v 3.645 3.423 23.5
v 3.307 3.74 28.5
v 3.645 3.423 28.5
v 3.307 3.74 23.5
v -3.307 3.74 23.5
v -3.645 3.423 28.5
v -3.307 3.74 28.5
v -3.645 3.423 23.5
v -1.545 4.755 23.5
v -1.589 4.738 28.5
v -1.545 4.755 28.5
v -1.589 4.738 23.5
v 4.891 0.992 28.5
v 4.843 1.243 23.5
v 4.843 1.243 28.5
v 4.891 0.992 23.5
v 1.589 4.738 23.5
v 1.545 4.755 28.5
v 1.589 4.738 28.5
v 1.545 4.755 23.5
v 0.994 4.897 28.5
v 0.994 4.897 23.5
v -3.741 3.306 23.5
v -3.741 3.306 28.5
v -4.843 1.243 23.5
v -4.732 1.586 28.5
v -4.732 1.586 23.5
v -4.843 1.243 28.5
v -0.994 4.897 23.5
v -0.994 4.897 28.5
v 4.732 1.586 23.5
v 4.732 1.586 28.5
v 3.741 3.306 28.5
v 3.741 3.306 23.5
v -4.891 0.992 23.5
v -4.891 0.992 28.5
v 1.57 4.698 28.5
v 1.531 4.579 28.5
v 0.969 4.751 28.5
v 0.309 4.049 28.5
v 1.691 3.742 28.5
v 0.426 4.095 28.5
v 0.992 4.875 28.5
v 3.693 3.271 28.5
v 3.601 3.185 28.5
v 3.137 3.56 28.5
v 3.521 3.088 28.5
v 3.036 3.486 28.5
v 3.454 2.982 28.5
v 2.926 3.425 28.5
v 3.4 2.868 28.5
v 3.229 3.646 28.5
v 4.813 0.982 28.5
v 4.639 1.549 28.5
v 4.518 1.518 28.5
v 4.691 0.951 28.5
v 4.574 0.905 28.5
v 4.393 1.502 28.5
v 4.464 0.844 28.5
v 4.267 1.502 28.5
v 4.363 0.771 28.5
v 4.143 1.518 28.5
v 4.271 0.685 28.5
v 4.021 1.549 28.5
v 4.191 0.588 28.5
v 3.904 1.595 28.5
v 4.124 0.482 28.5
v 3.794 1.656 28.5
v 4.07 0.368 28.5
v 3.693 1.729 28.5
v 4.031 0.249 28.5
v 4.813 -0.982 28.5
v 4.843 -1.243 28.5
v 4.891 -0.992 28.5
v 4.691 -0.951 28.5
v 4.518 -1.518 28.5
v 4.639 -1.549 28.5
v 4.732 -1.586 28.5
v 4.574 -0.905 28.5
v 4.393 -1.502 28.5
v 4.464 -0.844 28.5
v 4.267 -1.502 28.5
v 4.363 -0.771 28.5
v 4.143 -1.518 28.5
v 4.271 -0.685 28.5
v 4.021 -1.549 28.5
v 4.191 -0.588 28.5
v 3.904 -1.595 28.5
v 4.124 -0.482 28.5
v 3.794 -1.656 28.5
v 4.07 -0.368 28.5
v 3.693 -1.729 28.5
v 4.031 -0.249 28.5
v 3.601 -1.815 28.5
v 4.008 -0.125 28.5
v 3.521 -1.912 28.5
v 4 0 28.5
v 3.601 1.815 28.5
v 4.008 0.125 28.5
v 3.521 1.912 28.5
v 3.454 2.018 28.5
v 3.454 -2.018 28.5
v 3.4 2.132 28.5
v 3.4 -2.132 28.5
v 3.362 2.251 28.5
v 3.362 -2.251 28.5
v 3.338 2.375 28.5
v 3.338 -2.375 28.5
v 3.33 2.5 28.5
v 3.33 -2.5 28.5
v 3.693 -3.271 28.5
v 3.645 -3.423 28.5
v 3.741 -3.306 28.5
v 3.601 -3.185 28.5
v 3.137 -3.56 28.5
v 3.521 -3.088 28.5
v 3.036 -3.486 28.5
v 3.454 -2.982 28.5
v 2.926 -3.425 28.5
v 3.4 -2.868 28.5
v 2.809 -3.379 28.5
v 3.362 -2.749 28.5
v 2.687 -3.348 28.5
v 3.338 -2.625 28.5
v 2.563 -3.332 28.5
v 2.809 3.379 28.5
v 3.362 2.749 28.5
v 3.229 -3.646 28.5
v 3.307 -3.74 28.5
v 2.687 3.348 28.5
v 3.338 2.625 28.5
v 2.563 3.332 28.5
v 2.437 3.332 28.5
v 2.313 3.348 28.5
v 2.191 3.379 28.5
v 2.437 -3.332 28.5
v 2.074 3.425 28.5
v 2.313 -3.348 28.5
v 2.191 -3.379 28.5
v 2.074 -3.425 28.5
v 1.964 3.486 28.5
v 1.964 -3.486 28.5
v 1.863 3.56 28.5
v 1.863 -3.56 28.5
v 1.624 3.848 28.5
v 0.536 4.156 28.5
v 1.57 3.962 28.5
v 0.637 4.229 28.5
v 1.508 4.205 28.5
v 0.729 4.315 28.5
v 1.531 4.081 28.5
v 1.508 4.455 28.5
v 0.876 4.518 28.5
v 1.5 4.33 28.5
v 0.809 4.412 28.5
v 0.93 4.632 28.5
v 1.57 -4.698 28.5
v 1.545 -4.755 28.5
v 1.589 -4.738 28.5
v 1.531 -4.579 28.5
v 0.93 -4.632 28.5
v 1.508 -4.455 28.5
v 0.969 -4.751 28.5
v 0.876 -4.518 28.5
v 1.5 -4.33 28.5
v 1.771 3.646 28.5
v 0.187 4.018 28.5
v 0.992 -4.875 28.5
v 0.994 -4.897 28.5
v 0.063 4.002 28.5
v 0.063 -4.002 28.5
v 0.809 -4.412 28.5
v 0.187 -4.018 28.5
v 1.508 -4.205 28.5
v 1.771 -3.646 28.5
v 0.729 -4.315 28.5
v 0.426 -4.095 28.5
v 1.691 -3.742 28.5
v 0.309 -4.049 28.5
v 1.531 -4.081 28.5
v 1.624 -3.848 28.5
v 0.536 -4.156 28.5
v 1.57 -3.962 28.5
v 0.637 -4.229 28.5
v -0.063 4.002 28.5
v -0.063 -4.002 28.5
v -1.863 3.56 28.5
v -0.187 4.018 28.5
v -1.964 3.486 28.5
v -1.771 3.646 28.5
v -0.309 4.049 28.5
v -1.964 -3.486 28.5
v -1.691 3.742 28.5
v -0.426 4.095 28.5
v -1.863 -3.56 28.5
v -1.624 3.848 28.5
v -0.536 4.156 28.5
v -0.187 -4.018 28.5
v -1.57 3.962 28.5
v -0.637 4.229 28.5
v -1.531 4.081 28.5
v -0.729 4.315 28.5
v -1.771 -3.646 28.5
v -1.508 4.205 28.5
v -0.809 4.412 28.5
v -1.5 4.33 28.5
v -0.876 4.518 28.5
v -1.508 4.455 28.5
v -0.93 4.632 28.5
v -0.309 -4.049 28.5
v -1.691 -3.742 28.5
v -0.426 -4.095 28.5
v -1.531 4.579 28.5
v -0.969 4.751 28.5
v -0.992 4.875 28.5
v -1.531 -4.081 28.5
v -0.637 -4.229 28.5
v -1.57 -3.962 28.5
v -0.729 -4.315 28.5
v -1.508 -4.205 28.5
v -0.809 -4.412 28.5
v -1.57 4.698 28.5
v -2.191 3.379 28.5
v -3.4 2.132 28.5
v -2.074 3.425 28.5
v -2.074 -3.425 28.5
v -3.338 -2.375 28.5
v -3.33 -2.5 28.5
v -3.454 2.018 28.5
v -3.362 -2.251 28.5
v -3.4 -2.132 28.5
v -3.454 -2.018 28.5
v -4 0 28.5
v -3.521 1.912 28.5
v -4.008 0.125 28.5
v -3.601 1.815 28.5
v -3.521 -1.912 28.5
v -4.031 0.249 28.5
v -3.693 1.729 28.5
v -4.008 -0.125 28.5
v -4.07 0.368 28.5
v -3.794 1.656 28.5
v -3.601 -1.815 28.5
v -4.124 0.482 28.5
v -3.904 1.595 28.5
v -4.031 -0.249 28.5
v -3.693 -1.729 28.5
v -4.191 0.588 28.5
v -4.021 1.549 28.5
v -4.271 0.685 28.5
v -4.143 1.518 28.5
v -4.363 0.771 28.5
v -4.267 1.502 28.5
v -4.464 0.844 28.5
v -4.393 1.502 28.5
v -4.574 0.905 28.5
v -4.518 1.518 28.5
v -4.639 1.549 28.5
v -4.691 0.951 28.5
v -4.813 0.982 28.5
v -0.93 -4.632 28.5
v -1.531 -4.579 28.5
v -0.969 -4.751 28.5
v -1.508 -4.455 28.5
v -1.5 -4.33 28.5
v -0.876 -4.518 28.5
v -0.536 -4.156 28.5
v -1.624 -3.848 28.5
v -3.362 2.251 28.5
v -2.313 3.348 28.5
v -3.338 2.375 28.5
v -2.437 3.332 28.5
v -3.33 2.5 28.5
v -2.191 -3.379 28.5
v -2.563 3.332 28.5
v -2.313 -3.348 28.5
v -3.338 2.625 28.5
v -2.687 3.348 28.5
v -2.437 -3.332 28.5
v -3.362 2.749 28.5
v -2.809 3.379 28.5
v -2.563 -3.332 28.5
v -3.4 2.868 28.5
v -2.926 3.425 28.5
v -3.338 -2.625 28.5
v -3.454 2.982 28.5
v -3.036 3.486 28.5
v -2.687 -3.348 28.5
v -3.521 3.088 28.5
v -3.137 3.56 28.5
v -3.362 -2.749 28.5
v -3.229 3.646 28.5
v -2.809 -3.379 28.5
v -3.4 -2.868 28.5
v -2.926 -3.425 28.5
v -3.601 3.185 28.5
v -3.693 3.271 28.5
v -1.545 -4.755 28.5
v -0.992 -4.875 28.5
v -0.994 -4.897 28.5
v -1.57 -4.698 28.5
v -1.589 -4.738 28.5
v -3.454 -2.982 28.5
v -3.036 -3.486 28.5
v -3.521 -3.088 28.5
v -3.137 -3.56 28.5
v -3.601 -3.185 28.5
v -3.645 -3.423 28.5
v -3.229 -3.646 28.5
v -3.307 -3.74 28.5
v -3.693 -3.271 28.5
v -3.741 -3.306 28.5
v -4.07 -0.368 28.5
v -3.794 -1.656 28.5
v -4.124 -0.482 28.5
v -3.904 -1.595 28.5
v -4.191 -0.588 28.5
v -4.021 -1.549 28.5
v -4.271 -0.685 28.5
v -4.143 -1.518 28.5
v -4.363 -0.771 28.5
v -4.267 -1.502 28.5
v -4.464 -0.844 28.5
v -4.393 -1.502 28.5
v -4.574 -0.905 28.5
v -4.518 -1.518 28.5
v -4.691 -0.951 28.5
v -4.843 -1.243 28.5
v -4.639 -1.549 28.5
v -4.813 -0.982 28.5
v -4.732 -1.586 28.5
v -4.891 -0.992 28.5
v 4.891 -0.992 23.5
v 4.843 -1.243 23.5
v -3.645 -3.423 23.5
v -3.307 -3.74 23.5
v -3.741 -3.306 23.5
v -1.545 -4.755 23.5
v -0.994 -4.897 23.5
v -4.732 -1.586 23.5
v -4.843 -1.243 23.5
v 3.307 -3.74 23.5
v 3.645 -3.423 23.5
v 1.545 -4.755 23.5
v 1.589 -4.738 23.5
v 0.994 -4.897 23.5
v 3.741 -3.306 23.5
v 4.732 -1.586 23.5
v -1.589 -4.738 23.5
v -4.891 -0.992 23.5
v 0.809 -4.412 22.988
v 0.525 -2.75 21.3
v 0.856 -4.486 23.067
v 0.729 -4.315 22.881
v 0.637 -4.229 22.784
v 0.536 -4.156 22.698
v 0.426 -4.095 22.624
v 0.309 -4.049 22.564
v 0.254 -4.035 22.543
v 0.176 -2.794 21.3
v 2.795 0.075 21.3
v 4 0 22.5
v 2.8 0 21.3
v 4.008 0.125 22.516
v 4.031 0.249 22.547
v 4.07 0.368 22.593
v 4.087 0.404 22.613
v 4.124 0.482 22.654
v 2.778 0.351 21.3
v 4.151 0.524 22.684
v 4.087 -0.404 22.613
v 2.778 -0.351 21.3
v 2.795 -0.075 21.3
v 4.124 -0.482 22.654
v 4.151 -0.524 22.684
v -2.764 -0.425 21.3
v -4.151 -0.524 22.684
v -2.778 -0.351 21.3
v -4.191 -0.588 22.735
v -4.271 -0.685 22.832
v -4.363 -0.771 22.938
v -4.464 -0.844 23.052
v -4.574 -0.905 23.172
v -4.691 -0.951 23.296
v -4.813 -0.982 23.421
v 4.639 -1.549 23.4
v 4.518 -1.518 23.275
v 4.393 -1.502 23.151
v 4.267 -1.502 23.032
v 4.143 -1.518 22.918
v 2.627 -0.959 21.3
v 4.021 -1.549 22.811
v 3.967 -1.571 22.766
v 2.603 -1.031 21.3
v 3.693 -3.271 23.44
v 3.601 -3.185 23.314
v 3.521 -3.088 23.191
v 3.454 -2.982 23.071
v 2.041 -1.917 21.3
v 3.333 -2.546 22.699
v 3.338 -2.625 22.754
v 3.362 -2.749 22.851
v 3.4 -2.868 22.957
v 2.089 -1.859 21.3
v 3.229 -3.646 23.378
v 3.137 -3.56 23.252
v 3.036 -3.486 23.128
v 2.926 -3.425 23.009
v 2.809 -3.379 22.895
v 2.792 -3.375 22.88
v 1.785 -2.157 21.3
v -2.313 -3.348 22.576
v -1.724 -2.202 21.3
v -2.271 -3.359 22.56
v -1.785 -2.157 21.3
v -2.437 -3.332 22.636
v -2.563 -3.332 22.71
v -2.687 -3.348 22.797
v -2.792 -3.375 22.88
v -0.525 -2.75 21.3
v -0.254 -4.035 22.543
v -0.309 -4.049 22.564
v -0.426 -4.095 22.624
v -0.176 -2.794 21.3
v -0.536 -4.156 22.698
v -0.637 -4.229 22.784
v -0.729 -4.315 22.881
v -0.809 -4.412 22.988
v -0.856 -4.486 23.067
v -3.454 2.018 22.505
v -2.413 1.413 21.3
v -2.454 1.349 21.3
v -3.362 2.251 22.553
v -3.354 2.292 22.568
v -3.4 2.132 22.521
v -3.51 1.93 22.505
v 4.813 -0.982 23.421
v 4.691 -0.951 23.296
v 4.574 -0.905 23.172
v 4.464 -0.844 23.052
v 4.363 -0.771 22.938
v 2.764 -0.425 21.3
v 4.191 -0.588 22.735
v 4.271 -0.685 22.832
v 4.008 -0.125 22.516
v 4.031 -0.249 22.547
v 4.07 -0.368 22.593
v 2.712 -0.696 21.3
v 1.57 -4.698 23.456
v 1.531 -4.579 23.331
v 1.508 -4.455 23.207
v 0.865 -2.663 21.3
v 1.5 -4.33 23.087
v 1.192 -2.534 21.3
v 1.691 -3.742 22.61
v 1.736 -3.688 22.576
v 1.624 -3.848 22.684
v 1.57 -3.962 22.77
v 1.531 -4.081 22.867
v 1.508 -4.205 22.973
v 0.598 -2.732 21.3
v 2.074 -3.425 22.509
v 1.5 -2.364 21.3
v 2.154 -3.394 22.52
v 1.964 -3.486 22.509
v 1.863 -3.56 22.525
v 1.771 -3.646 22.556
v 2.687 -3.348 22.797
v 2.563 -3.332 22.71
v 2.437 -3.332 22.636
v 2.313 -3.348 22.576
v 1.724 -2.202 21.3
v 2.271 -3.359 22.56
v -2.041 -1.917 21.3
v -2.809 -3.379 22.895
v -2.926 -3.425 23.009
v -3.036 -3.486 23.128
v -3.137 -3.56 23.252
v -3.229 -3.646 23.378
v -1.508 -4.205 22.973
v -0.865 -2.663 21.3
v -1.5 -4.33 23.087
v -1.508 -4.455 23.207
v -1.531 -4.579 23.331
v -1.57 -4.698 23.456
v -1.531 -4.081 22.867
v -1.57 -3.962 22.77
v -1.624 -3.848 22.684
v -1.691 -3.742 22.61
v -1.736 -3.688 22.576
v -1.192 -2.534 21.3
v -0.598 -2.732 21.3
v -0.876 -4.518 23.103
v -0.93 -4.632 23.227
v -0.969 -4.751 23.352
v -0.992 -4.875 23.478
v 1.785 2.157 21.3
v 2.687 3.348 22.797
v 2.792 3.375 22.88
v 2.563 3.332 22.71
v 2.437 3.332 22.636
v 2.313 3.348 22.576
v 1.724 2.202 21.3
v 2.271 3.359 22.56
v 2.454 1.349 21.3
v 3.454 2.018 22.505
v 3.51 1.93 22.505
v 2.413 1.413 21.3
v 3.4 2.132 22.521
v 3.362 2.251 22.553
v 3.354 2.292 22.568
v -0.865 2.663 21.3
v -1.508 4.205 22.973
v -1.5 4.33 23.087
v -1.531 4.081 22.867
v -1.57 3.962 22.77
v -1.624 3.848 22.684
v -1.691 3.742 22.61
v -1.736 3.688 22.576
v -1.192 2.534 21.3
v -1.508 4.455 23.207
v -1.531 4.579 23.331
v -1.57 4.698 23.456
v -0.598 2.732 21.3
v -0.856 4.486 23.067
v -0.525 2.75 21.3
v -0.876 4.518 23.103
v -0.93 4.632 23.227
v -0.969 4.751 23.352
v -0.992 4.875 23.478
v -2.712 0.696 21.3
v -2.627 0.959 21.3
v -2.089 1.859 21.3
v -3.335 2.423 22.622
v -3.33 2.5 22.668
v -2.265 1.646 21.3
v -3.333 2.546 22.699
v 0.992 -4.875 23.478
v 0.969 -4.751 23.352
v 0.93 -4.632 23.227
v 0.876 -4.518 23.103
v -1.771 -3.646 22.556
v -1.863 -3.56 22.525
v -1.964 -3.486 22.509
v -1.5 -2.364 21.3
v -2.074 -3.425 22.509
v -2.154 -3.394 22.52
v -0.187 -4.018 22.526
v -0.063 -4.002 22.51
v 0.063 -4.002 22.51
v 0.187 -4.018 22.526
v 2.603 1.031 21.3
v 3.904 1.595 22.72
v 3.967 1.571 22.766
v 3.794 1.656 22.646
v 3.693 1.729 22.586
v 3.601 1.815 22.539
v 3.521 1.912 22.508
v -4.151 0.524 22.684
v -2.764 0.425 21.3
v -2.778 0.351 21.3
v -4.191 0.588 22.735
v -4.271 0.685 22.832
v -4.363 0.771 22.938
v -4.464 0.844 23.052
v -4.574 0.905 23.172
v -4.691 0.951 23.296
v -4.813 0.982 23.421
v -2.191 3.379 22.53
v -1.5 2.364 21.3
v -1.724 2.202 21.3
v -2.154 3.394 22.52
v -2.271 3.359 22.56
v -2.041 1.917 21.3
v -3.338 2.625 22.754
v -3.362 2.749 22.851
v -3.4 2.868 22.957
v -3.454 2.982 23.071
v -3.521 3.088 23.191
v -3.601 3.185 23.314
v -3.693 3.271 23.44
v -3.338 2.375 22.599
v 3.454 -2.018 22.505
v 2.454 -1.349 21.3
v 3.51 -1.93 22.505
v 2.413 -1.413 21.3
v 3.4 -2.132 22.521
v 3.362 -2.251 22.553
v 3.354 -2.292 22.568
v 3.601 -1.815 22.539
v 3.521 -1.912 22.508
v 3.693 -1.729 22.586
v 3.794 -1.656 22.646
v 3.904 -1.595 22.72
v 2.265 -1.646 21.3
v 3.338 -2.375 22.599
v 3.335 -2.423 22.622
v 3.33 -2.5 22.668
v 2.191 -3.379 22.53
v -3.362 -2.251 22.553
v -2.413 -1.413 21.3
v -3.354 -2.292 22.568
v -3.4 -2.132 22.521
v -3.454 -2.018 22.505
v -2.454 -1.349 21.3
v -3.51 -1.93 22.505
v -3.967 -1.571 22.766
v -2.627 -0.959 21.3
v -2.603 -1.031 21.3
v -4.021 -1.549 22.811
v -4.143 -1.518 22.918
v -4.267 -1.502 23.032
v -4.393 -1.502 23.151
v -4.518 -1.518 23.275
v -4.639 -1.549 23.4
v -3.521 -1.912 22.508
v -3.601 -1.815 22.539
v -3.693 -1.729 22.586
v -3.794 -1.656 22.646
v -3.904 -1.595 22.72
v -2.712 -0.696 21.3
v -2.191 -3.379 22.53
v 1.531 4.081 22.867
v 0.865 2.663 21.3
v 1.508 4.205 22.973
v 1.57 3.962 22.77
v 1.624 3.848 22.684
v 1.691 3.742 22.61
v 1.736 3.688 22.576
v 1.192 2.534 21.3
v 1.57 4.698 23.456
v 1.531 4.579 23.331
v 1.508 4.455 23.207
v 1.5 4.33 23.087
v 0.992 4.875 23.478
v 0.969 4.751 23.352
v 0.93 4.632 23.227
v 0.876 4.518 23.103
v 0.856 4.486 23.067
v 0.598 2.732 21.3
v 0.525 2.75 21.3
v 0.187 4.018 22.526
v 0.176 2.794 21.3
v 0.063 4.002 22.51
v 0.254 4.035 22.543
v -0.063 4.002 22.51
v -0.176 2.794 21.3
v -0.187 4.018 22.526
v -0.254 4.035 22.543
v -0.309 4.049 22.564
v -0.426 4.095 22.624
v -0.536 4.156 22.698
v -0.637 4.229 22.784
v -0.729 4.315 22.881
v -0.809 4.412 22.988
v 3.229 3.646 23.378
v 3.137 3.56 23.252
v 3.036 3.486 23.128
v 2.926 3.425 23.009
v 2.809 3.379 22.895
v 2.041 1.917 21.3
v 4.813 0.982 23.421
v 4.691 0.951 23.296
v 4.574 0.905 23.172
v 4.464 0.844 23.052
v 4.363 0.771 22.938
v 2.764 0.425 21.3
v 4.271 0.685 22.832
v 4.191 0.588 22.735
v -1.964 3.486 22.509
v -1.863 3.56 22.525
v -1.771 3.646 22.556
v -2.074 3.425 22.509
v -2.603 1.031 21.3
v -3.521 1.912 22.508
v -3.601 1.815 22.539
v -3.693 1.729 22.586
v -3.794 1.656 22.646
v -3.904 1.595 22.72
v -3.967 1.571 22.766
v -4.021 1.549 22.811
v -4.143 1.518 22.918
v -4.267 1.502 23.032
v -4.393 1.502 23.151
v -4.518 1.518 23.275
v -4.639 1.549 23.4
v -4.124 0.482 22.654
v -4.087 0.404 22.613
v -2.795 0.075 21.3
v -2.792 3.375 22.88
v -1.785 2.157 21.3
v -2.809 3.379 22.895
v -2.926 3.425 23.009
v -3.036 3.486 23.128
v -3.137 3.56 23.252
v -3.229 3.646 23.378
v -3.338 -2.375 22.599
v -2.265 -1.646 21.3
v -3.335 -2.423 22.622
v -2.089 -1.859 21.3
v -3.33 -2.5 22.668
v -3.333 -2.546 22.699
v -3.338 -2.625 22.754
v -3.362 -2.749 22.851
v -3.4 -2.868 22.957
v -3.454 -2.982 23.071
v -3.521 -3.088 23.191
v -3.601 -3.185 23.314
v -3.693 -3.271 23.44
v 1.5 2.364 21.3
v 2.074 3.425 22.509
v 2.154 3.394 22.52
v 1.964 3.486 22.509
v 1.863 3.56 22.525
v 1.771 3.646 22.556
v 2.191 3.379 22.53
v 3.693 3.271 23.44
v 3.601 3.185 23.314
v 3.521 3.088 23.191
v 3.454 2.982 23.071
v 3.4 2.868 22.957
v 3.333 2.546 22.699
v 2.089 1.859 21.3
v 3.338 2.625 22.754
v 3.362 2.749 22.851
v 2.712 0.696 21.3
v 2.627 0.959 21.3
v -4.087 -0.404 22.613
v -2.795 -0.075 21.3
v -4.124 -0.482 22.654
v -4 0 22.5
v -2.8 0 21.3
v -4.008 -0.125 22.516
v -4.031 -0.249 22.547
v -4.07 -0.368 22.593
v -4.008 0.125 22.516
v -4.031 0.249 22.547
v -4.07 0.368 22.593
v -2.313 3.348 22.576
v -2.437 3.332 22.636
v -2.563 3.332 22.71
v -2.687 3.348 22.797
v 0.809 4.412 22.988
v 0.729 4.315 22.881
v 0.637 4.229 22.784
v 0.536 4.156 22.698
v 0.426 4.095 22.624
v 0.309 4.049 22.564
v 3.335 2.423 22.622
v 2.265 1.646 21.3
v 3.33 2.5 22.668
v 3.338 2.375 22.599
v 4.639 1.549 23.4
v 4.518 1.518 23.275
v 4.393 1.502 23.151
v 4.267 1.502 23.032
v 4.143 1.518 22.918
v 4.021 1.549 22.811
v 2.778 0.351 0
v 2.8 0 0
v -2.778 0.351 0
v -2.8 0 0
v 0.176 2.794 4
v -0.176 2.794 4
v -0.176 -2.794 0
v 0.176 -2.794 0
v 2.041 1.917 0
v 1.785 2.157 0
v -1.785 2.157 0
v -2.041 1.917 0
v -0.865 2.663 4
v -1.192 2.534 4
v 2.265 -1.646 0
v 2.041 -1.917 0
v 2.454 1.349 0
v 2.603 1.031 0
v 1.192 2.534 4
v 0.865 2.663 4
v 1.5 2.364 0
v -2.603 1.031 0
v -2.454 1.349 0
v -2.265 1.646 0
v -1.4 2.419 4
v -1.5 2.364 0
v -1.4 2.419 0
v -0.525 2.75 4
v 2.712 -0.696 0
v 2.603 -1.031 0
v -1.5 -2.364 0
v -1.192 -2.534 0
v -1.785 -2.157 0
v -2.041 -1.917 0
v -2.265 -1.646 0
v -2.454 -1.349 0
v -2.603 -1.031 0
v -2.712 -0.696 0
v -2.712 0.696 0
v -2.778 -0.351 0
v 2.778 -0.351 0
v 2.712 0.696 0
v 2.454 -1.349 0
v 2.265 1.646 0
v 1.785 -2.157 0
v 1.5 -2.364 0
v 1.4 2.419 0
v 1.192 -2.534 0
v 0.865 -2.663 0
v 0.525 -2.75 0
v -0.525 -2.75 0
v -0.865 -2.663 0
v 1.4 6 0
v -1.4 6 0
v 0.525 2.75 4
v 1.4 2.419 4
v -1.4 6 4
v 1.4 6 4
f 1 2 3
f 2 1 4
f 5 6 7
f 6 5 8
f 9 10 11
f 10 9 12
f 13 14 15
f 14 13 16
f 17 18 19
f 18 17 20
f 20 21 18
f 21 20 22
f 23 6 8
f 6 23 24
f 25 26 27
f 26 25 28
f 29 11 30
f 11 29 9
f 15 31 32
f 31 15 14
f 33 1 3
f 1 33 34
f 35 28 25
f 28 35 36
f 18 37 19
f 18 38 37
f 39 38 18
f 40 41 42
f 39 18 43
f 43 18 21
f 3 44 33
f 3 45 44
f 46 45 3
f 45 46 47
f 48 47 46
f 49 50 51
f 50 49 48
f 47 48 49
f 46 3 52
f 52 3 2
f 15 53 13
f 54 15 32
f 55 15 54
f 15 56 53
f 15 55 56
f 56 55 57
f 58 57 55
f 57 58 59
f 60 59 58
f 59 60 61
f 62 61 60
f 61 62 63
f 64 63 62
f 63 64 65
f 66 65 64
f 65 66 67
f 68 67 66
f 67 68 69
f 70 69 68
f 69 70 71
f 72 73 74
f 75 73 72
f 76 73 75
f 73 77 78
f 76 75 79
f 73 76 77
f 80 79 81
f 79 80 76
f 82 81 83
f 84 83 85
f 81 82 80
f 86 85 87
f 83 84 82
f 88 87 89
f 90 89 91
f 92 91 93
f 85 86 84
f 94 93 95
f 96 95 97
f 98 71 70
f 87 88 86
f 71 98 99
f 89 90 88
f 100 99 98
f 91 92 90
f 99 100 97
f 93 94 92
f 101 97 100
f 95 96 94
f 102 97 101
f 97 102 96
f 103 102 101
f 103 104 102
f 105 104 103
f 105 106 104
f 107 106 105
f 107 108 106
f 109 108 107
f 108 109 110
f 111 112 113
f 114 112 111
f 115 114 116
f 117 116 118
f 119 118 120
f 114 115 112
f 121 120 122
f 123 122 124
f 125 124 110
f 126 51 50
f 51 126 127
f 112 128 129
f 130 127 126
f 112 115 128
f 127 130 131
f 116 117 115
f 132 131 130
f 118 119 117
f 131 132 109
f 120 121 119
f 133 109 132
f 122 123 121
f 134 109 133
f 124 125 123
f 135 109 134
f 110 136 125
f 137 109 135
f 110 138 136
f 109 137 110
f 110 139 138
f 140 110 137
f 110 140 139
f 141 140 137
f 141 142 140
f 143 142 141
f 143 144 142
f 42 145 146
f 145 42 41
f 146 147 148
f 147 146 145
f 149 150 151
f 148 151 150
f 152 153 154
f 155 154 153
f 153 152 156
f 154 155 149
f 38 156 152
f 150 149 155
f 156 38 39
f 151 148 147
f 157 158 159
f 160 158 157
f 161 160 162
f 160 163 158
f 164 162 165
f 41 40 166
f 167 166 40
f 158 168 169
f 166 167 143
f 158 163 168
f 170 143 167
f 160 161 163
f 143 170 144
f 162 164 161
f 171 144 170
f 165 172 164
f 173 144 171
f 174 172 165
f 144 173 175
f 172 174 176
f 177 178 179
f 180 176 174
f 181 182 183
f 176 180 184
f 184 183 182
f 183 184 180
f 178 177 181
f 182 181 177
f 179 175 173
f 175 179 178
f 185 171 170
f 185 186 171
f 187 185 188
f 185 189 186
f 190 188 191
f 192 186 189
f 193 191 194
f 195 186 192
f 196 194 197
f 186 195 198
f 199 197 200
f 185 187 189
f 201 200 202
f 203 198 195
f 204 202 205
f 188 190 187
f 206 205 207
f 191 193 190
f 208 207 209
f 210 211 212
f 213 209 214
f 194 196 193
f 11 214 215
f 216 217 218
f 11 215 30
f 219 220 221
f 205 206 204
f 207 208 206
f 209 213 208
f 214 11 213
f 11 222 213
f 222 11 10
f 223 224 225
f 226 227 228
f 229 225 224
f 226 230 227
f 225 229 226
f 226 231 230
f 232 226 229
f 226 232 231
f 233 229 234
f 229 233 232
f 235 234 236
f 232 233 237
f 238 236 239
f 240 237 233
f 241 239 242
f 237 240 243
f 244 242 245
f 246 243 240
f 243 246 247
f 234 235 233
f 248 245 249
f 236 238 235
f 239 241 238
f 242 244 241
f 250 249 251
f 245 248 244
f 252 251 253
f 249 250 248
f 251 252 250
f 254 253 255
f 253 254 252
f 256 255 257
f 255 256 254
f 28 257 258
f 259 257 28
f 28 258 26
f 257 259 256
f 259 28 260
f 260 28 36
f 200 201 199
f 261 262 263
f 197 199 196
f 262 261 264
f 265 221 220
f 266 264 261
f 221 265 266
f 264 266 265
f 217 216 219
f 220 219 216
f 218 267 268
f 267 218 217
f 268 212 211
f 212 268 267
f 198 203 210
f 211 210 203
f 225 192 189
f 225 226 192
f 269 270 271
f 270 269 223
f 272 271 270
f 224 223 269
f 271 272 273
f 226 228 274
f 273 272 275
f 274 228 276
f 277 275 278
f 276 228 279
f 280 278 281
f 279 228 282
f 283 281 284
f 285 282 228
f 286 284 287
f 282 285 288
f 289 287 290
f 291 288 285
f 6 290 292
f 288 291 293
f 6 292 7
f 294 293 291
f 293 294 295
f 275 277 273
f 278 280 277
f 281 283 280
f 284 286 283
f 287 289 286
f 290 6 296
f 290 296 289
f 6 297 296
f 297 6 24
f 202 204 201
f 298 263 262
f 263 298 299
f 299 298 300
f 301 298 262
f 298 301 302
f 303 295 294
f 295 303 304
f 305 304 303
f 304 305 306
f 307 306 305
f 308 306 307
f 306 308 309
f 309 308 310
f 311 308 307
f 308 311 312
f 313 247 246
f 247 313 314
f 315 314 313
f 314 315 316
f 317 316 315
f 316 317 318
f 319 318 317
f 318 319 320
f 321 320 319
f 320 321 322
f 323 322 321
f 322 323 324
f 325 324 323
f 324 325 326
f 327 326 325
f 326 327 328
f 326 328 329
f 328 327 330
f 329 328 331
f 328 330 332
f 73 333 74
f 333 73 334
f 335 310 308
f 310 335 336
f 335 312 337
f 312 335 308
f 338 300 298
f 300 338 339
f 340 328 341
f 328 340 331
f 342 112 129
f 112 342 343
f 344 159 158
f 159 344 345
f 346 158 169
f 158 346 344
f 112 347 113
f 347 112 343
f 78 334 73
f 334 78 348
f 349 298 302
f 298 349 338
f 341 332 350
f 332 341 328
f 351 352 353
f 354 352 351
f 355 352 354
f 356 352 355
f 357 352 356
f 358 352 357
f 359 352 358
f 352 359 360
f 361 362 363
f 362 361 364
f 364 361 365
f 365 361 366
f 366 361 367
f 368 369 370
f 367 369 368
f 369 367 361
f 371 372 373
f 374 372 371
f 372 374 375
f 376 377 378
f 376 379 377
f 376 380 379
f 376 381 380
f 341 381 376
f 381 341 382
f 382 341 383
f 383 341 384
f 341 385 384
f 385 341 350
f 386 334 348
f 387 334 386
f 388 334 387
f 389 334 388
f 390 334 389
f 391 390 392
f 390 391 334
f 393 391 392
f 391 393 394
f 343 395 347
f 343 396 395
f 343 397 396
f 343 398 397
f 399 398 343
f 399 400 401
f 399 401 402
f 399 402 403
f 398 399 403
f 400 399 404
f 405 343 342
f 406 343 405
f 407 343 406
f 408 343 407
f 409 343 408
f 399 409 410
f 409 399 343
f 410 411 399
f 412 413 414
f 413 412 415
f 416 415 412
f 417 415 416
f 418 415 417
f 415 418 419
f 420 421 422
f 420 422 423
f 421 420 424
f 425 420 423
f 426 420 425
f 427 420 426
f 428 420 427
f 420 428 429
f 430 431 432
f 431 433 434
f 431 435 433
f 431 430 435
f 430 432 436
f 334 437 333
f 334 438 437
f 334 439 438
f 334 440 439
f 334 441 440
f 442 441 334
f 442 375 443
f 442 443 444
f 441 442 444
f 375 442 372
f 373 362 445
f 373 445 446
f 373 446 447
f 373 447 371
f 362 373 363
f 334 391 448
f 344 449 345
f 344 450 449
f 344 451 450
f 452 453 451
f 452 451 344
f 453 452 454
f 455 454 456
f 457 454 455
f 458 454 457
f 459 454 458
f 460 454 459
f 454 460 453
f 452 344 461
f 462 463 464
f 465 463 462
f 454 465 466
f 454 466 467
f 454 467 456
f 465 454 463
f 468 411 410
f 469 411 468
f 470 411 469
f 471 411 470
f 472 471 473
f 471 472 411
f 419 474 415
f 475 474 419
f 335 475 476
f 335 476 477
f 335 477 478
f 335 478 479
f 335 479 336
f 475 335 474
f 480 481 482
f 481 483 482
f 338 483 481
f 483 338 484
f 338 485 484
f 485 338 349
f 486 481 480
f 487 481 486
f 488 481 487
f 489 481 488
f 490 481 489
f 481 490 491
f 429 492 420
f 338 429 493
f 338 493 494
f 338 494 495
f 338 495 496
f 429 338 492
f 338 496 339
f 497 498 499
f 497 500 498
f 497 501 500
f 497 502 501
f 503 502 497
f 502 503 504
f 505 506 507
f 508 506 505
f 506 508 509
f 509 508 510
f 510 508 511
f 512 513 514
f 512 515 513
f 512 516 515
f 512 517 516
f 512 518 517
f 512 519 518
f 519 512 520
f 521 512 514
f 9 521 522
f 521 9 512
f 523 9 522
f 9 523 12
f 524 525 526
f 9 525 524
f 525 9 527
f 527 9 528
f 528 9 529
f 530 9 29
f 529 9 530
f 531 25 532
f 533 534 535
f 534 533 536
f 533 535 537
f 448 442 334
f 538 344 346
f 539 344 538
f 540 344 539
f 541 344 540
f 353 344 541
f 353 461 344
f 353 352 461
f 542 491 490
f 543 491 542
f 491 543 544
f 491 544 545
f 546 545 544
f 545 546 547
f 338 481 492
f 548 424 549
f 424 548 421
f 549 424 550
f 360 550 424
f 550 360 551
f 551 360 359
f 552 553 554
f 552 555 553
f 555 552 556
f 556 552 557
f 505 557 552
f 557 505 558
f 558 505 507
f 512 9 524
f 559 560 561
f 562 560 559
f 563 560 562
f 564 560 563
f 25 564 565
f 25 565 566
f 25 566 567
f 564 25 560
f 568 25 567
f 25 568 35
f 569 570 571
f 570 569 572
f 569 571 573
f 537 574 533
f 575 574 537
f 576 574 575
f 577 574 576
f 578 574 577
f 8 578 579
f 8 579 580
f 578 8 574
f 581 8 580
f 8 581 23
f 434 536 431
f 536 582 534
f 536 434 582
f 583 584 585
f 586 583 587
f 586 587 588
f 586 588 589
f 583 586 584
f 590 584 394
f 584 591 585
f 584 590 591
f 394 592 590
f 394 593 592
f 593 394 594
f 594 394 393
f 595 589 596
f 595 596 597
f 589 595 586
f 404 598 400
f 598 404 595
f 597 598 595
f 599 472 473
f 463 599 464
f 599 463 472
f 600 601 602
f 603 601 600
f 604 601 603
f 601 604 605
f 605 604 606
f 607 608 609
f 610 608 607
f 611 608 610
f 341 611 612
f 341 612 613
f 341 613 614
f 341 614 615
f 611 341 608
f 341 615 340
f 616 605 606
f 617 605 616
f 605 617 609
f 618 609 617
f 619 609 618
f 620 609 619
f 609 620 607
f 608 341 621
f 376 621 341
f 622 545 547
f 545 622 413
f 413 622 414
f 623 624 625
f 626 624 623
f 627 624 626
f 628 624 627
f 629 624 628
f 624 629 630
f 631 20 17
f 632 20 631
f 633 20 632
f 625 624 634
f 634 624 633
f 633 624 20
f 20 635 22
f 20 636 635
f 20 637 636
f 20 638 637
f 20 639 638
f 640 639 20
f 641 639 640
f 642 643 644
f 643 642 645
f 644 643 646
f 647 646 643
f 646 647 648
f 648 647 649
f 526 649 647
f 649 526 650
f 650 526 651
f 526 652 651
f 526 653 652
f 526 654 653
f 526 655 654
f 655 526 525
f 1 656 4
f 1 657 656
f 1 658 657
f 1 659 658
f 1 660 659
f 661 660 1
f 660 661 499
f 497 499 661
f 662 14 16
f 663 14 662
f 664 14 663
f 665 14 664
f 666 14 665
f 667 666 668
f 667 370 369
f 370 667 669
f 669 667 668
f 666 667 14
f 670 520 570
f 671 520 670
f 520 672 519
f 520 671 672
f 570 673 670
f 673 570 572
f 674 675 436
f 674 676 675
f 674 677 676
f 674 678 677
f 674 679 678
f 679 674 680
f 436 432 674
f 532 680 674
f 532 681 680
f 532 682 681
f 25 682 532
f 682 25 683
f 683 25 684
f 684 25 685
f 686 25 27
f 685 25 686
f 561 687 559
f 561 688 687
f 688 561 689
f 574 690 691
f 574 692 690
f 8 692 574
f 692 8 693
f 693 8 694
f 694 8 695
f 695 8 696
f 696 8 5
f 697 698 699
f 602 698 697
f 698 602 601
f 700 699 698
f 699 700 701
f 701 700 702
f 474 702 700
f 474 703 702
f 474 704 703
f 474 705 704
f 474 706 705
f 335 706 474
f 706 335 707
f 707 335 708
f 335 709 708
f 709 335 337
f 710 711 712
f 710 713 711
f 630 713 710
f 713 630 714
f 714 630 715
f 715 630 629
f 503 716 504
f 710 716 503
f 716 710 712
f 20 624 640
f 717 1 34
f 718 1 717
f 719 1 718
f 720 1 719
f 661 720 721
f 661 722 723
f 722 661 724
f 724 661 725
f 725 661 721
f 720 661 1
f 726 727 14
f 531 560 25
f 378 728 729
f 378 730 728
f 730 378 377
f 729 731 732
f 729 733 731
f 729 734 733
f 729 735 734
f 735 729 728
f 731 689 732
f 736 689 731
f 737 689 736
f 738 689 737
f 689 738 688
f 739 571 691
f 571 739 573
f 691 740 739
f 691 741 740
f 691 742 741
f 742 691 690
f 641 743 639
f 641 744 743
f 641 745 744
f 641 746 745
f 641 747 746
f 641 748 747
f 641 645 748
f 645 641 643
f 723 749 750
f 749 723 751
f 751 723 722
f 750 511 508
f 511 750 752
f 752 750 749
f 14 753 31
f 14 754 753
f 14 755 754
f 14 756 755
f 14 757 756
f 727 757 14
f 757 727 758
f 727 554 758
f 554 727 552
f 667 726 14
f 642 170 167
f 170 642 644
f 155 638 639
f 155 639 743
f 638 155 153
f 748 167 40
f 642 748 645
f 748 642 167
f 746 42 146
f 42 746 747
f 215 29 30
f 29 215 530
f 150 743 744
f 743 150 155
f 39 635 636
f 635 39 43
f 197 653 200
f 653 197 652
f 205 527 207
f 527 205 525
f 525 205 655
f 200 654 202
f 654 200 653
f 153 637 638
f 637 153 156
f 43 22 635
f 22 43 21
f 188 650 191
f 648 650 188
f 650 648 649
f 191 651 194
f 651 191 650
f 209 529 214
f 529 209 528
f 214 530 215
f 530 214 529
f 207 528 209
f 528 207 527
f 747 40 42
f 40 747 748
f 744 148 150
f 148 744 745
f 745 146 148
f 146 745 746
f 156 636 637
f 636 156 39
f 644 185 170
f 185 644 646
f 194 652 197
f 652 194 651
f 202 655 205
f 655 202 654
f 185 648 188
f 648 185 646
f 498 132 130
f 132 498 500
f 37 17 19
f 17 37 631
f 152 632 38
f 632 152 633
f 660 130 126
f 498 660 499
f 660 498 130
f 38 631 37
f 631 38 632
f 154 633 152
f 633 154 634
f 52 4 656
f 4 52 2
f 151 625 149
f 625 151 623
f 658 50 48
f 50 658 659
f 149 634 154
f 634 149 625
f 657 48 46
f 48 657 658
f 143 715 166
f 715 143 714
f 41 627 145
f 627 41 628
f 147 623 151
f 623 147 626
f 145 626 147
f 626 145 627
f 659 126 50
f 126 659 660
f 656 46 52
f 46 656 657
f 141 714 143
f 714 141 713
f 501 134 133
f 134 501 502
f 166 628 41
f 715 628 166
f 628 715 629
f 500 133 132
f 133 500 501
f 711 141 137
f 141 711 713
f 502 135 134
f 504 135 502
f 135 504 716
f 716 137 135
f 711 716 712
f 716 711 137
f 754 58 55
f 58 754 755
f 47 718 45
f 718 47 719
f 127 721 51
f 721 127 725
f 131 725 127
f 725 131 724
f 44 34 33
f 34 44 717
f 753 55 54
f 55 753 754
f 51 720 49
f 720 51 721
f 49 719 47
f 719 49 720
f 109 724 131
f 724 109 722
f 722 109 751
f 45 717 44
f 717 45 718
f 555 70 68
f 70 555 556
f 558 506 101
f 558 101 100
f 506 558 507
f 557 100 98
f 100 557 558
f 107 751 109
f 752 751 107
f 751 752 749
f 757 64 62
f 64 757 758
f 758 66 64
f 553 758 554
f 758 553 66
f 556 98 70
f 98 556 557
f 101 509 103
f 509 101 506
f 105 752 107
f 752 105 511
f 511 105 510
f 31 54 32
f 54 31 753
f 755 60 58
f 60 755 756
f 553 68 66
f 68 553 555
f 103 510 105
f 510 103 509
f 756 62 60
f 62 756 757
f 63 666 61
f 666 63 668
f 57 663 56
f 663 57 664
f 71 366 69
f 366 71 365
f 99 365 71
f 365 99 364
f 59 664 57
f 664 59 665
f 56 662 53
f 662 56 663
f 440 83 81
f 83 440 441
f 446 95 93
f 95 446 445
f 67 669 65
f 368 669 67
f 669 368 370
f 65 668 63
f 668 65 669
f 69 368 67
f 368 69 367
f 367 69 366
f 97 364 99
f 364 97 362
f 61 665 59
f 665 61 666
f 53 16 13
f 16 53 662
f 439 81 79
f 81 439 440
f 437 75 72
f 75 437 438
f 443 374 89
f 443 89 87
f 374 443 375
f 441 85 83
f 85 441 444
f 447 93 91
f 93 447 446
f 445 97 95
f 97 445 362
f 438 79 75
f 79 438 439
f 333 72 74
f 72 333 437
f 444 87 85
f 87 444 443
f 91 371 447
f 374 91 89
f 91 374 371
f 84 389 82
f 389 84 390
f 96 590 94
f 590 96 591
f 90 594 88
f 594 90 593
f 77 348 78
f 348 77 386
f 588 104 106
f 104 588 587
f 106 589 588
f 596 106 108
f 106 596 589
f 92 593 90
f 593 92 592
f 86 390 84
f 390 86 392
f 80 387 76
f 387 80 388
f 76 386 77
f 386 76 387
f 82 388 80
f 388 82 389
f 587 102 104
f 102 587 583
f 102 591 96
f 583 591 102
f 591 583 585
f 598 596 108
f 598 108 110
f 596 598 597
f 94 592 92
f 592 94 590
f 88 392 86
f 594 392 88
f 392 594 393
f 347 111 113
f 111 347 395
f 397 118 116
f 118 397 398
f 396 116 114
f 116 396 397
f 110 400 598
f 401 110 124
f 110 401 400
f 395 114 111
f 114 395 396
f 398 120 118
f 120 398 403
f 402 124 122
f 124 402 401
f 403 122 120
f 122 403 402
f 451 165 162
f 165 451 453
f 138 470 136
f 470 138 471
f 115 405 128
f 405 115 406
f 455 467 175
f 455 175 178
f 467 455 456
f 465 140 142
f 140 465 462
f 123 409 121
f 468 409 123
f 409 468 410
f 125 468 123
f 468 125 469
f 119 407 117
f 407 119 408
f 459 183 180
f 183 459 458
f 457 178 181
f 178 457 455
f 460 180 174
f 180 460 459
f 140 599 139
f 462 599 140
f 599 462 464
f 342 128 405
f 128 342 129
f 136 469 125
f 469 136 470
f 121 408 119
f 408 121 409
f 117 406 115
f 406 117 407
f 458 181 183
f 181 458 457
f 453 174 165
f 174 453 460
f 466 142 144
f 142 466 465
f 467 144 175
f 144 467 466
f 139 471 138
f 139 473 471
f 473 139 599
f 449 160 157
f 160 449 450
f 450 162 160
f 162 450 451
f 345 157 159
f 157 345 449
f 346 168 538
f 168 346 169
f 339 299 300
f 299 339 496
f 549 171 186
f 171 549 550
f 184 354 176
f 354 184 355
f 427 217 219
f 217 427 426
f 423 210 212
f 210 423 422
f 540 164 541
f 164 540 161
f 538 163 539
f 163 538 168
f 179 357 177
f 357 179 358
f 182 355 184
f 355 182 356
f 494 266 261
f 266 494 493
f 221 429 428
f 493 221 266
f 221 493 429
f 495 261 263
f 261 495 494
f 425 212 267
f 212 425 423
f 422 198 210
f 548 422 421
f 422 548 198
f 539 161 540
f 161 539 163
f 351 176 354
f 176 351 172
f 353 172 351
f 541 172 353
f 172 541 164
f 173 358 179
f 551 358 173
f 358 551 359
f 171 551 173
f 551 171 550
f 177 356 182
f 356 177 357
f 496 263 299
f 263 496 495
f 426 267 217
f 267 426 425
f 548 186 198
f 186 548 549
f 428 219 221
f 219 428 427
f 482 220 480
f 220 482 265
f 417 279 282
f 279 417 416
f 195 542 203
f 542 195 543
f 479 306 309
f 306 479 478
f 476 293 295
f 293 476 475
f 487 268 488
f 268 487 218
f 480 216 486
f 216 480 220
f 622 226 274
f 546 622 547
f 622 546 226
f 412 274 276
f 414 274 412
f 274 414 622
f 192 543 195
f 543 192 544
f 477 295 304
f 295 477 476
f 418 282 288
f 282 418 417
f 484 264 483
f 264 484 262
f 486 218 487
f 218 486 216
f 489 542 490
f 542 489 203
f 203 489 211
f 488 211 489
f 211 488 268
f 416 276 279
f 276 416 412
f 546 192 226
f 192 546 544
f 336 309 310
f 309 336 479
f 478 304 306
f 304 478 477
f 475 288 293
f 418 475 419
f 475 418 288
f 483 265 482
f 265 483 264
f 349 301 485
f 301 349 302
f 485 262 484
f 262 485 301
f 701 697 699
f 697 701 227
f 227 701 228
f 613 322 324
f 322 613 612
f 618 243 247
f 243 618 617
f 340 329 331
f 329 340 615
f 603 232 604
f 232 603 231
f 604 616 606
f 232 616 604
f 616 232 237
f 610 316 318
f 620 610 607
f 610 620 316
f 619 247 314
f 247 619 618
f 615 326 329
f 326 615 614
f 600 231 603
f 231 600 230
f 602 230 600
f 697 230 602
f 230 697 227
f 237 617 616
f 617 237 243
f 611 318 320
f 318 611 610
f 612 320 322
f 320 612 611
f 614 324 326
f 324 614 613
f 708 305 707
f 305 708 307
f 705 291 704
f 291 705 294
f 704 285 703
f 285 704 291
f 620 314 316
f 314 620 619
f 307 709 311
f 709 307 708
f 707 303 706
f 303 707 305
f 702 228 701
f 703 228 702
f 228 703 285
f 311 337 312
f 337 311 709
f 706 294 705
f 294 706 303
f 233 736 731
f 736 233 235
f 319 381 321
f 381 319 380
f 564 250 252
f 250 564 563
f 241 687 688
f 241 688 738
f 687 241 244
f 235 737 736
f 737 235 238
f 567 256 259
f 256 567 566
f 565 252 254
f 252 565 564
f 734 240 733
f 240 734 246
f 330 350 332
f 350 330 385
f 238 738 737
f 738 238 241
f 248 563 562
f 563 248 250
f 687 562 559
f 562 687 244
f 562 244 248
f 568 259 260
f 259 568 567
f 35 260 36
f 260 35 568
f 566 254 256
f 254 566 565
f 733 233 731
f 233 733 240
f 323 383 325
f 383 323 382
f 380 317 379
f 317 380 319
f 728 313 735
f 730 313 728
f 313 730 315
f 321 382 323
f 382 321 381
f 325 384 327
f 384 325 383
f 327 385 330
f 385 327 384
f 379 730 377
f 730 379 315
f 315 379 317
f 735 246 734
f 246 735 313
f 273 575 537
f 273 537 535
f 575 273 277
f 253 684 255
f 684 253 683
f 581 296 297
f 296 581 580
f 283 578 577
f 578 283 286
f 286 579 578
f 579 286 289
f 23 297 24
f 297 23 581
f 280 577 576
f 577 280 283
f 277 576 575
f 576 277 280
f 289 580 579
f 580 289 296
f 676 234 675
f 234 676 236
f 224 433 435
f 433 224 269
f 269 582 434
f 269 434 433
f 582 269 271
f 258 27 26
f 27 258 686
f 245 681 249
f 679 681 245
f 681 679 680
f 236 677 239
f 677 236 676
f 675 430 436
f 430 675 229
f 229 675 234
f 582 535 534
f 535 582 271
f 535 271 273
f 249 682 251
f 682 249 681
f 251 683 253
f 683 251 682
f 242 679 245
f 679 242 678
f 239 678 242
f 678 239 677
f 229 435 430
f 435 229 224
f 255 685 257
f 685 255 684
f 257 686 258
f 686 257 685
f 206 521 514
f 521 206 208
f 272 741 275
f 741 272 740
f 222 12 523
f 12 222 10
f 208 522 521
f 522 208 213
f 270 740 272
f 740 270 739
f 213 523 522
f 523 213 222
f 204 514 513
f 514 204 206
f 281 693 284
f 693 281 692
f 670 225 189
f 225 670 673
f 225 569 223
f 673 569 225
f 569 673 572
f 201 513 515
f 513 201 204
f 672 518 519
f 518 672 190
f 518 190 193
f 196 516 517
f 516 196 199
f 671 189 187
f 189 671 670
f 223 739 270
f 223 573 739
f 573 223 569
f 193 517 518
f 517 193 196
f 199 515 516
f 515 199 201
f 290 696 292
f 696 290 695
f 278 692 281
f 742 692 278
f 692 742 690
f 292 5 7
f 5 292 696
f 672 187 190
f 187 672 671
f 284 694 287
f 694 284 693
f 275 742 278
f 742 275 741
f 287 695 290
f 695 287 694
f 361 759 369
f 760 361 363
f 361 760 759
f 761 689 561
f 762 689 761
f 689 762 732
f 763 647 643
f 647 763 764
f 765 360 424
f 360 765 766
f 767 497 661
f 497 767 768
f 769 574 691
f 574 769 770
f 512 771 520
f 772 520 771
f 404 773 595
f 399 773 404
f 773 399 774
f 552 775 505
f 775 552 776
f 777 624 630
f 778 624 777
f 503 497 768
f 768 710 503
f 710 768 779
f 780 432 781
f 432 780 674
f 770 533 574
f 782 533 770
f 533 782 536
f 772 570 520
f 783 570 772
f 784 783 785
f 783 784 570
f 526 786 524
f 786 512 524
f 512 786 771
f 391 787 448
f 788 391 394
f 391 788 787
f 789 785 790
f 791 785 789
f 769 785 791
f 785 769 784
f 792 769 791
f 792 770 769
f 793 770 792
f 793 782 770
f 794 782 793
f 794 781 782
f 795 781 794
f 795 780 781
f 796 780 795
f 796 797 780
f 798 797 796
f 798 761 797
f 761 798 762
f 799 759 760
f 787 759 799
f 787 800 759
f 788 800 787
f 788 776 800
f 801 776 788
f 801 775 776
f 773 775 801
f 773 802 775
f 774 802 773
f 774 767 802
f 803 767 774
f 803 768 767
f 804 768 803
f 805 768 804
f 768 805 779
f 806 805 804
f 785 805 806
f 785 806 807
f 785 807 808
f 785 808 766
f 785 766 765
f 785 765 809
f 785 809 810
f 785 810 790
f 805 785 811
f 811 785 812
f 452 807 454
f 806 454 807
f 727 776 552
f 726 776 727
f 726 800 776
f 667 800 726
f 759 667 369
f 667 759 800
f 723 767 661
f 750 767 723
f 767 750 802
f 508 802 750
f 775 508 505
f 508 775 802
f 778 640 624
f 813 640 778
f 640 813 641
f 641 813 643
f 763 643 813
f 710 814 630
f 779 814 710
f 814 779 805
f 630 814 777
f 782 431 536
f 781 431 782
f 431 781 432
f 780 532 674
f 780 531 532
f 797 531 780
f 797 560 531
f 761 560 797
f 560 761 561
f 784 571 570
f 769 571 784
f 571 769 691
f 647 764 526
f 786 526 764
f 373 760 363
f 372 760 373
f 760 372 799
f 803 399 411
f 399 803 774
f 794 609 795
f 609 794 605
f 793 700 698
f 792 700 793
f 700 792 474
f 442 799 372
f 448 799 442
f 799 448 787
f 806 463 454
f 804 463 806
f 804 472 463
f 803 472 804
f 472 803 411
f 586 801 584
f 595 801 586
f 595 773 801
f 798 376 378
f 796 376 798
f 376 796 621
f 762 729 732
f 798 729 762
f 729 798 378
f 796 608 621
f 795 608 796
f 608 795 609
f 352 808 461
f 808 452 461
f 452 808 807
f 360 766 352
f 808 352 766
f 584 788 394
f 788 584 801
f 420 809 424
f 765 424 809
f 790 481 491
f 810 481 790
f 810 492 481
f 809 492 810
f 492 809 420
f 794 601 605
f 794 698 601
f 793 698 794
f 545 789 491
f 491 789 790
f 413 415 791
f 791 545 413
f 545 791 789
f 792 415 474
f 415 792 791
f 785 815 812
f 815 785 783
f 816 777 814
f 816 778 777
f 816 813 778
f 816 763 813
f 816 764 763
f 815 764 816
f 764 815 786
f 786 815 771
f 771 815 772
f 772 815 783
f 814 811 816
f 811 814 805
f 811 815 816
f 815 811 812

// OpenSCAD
$fn=50;

module ridged_wheel(ipH=5, ipR=10)
{
    difference(){
        union(){
            translate([0,0,ipH*0.5])cylinder(r=ipR, h=ipH);
            translate([0,0,0]) cylinder(r1=ipR/2, r2=ipR, h=ipH*0.5);
        }
        for(i = [0 : 30 : 360]){
            translate([ipR*sin(i),ipR*cos(i),-1])cylinder(r=1, h =12);
        }
    }
}


cylinder(h=22, r=2.8);
translate([0,3.5,2]) cube([2.8,5,4], center=true);

translate([0,0,21]) ridged_wheel(5,5);
